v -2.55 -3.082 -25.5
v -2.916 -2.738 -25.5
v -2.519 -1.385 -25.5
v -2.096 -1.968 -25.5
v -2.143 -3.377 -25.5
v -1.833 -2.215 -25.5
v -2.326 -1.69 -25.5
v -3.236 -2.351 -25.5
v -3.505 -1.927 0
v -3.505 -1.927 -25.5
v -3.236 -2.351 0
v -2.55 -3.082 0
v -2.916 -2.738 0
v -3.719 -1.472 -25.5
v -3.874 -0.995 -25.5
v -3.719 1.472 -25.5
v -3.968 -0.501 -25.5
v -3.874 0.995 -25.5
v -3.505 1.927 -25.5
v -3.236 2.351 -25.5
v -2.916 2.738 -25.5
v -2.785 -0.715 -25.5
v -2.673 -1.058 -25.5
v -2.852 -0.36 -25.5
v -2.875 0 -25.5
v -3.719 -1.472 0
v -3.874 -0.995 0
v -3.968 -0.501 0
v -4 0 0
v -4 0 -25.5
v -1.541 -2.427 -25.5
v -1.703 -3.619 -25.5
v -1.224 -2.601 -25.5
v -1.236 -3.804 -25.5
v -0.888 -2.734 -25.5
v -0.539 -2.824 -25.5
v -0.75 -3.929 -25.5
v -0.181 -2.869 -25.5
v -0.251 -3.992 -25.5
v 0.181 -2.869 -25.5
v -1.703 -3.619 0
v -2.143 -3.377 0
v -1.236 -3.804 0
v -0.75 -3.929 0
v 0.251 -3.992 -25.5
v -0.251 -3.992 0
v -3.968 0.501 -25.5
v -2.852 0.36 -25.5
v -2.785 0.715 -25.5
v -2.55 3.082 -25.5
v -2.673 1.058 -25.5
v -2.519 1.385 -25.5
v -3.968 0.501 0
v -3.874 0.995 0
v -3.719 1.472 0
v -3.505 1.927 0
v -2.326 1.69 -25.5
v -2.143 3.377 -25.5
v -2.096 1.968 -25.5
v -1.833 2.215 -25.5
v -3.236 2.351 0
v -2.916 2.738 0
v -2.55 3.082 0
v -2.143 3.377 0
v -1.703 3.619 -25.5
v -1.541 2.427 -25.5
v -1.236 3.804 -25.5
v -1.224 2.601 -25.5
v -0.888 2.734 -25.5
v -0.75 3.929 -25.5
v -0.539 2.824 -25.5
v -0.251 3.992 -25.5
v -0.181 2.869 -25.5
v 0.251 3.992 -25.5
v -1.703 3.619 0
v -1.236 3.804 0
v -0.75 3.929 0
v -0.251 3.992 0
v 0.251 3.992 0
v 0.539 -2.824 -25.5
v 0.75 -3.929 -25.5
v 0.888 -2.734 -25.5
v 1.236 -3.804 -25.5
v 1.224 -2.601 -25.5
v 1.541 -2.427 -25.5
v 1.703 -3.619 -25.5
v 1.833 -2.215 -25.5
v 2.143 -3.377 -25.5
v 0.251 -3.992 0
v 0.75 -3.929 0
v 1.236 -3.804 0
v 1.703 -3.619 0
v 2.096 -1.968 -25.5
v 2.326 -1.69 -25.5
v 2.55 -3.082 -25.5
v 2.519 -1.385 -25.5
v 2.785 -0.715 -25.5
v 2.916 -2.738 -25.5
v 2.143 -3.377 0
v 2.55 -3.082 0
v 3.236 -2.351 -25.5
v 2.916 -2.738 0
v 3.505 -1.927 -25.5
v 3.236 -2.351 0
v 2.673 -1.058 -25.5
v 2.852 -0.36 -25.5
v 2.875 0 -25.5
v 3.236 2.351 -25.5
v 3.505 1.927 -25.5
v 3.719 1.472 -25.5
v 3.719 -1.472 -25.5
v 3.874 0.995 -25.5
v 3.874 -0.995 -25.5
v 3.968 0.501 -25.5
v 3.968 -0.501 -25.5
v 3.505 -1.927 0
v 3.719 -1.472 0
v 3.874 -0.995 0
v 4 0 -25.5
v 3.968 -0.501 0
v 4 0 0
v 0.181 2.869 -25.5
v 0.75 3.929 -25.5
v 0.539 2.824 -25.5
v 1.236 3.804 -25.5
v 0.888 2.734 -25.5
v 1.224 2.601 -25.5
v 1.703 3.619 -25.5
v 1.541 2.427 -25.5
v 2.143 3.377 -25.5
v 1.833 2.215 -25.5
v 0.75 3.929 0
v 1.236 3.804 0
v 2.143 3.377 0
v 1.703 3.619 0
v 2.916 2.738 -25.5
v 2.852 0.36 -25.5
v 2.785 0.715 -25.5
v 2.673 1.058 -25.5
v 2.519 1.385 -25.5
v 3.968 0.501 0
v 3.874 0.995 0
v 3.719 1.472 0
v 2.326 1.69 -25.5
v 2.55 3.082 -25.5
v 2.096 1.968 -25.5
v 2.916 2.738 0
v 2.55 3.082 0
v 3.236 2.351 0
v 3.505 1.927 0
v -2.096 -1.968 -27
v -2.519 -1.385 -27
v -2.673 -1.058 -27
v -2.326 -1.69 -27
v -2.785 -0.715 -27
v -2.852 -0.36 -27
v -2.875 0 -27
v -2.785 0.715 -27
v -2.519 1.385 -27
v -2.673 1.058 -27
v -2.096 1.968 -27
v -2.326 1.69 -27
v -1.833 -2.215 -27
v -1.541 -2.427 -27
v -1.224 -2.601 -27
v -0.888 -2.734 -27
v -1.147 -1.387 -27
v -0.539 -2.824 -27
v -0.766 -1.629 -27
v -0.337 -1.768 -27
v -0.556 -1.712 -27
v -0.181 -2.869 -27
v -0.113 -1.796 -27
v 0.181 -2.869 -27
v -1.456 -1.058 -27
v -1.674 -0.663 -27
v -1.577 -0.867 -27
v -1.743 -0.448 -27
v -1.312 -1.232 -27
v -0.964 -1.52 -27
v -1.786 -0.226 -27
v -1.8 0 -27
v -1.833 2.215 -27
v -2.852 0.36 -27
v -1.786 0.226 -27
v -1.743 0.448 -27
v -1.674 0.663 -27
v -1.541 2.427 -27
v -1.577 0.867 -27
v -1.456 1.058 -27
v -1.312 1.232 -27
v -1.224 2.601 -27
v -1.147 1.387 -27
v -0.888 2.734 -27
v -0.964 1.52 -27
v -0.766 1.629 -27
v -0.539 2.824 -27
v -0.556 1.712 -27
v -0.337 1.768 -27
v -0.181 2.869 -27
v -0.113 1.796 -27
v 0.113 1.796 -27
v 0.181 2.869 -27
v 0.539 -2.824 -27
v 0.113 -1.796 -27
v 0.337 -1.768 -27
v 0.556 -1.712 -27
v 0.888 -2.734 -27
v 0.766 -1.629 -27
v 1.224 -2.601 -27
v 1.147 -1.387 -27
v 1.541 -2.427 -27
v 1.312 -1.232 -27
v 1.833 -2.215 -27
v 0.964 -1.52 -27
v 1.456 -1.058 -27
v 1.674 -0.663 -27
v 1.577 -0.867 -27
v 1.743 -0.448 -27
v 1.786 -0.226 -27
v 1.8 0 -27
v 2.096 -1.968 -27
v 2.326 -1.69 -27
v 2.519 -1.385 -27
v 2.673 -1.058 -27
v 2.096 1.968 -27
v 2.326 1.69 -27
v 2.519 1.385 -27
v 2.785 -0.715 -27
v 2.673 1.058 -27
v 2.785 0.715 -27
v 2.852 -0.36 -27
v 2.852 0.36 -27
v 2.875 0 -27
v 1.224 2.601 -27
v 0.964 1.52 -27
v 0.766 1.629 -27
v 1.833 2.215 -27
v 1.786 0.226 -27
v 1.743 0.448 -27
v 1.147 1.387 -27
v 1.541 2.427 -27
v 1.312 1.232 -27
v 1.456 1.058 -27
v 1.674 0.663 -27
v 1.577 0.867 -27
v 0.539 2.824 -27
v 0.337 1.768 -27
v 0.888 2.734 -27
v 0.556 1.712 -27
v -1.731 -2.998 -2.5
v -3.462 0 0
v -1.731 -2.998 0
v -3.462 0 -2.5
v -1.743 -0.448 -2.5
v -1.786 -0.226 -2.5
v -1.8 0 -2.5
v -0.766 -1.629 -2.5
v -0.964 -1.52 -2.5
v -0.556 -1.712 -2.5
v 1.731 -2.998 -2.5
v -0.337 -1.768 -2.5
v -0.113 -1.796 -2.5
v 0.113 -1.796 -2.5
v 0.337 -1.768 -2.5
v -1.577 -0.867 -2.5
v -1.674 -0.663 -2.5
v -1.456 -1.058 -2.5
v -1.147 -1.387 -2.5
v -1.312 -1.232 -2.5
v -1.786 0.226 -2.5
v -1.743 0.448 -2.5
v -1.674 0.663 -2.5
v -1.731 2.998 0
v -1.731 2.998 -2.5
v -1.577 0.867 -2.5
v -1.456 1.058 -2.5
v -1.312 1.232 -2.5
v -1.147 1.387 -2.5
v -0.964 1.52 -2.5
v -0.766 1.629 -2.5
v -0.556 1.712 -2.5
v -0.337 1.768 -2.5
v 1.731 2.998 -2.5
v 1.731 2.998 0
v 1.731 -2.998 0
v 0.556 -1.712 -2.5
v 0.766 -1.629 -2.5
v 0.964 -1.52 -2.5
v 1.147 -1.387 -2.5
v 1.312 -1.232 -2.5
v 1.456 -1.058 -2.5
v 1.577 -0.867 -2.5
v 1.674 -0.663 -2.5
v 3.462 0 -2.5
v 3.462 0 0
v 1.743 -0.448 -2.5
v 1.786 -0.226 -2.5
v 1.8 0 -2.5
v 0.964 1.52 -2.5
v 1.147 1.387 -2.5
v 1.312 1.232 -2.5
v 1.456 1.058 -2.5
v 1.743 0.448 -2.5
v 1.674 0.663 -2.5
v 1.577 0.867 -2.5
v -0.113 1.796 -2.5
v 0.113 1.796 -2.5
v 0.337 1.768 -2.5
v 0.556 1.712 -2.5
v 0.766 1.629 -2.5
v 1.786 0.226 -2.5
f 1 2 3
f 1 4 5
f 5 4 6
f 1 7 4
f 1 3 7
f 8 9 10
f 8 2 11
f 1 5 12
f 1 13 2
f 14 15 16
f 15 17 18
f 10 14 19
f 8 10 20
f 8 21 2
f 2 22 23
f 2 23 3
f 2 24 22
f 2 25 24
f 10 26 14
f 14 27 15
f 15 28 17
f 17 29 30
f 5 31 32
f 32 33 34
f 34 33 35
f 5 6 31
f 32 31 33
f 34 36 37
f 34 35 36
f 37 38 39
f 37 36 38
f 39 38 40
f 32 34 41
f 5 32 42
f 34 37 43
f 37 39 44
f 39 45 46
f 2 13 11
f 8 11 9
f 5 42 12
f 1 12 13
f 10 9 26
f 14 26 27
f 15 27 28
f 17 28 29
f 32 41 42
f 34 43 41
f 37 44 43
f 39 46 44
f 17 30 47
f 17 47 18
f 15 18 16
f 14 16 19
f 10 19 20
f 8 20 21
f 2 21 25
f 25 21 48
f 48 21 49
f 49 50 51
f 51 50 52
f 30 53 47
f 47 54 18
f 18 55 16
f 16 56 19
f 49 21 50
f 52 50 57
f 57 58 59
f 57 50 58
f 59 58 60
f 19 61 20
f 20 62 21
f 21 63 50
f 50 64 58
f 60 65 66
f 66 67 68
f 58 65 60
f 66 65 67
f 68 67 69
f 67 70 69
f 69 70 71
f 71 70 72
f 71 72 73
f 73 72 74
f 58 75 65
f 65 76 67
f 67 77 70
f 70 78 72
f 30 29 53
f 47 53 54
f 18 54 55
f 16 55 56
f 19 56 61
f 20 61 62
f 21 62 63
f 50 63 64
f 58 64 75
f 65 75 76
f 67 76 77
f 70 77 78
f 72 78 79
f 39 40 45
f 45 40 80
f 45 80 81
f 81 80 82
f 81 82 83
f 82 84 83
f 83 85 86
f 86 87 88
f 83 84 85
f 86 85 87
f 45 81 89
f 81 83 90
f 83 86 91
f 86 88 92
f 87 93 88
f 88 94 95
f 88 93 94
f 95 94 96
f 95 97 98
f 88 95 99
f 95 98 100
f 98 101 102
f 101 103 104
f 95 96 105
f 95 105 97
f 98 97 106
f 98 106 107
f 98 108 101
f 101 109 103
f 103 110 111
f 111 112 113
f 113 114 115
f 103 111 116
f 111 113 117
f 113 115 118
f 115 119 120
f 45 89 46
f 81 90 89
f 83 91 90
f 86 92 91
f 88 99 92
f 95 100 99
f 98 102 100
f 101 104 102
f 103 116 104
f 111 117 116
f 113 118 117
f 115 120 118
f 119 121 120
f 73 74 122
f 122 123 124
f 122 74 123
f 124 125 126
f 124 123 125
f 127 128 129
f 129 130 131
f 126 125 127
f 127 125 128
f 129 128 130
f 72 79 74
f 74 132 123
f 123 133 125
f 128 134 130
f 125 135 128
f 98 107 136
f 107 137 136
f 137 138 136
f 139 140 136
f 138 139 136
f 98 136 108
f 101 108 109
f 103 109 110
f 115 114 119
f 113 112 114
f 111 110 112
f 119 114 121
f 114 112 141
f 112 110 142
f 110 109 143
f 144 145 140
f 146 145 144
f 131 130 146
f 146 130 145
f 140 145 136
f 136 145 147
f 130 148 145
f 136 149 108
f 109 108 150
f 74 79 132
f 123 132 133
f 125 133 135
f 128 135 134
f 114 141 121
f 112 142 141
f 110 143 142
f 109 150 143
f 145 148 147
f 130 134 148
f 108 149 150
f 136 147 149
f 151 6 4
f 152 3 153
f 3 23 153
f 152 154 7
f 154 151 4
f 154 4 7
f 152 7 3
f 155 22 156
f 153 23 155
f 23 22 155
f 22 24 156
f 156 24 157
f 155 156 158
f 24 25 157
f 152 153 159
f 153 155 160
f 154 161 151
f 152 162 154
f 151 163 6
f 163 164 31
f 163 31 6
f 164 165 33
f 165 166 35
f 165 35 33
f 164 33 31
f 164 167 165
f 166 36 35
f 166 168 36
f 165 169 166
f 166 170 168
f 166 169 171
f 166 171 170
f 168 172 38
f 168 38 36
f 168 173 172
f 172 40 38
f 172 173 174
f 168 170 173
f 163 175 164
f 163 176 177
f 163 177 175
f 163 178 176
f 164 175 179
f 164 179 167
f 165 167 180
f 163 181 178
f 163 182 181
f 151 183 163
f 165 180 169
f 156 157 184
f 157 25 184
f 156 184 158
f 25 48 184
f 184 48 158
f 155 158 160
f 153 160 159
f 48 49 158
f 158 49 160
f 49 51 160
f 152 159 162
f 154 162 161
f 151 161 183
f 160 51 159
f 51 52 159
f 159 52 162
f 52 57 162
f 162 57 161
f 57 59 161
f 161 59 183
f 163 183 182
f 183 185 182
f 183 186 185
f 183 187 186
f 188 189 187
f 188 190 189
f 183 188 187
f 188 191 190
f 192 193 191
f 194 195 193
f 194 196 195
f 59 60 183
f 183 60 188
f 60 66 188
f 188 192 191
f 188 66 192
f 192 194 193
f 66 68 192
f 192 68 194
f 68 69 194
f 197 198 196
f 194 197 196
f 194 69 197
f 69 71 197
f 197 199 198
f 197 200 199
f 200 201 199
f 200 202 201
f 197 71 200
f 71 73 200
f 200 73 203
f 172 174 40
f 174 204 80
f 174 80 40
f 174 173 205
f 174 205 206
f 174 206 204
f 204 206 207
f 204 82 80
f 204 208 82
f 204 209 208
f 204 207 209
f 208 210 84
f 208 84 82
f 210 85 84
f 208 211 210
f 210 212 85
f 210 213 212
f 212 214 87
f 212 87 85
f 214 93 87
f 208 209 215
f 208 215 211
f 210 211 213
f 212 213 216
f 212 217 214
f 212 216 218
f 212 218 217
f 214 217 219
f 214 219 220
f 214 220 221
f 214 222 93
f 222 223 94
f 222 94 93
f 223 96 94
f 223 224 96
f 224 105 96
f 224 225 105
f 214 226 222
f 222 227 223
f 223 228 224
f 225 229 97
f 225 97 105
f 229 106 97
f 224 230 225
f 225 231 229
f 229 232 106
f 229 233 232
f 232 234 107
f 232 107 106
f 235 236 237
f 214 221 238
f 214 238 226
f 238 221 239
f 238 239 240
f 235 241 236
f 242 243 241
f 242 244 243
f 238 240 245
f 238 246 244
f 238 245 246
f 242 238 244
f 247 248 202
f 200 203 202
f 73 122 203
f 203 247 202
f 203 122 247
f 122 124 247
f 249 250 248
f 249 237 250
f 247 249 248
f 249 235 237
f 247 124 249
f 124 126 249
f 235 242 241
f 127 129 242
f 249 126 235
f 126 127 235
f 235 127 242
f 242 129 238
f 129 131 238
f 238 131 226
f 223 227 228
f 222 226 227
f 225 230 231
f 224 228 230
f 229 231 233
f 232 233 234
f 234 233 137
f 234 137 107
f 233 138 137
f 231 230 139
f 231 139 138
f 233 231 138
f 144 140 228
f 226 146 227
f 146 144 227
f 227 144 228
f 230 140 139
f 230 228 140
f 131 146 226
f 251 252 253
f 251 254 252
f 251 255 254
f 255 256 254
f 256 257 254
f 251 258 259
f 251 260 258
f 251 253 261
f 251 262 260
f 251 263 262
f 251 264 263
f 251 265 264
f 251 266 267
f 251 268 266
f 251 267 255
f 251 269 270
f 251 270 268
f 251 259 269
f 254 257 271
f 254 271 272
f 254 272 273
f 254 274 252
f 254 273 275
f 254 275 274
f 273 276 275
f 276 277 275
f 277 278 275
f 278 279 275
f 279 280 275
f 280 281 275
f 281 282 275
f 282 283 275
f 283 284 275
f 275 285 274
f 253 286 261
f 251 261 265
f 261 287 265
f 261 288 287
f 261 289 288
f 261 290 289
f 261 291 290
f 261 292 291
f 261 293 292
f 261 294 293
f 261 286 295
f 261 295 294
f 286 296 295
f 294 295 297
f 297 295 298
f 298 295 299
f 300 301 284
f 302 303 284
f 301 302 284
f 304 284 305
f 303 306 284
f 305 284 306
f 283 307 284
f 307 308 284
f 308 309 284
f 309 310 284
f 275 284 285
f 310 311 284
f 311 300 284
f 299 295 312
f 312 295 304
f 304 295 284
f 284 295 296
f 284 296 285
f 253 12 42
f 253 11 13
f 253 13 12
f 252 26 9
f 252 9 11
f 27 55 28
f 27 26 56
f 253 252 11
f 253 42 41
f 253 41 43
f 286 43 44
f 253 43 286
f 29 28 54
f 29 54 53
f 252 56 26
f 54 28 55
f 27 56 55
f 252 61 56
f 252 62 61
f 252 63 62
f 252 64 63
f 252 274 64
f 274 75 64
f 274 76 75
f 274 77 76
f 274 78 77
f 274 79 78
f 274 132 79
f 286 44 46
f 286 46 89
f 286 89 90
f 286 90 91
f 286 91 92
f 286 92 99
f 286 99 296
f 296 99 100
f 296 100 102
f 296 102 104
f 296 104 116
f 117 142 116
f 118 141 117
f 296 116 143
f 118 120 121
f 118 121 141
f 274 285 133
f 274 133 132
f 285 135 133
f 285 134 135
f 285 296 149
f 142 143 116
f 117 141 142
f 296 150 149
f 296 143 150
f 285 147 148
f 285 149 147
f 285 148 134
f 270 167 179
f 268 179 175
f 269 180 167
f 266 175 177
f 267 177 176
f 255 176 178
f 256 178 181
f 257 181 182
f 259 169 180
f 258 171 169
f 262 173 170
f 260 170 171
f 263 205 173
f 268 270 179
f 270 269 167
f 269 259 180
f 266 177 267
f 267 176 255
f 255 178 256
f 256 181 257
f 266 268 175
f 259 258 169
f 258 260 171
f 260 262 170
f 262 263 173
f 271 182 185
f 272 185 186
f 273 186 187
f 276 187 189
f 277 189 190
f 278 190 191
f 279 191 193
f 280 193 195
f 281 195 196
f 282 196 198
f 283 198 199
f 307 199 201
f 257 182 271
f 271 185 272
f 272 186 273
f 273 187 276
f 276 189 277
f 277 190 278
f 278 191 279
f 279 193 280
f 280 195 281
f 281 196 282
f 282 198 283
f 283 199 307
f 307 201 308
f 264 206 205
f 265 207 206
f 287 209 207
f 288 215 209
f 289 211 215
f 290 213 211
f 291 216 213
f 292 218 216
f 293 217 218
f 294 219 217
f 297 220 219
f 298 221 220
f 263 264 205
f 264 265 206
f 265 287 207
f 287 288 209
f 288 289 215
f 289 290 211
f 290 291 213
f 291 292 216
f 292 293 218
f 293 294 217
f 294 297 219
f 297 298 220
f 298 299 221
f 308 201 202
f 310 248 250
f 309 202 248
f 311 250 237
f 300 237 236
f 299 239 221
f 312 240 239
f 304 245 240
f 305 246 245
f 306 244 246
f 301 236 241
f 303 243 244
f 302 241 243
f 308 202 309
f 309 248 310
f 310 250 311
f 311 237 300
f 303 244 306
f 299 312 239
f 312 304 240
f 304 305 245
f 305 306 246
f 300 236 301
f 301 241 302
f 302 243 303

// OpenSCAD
$fn = 50;

difference() {
	union() {
		translate(v = [0, 0, -25.5]) {
			cylinder(h = 28.5, r = 4.0);
		}
		#translate(v = [0, 0, -27.0]) {
			cylinder(h = 27, r = 2.875);
		}
	}
	union() {
		translate(v = [0, 0, 0]) {
			rotate(a = [0, 0, 0]) {
				difference() {
					union() {
						translate(v = [0, 0, -2.5]) {
							linear_extrude(height = 2.5) {
								polygon(points = [[3.4619999999999997, 0.0], [1.7310000000000003, 2.9981799479017264], [-1.7309999999999992, 2.9981799479017264], [-3.4619999999999997, 4.2397272186481365e-16], [-1.7310000000000014, -2.998179947901726], [1.7309999999999977, -2.9981799479017277]]);
							}
						}
					}
					union();
				}
			}
		}
		#cylinder(h = 3, r = 5.0);
		#translate(v = [0, 0, -100.0]) {
			cylinder(h = 200, r = 1.8);
		}
	}
}
